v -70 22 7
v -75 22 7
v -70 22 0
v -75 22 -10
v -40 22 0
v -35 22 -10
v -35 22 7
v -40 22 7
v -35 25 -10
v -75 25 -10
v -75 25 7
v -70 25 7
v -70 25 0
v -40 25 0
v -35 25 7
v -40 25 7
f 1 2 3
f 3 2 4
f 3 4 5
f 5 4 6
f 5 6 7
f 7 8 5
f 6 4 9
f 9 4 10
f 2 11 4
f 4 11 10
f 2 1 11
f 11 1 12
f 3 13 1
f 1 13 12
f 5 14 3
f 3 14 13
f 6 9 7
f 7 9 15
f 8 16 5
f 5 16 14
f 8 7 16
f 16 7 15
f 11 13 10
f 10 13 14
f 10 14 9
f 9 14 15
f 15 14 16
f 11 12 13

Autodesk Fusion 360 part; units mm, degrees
sketch "Sketch1" plane through (0, 0, 0) normal (0, 0, 1) x (1, 0, 0)
  line L0 (-75, 25) -> (-35, 25)
  line L1 (-35, 25) -> (-35, 20)
  line L2 (-35, 20) -> (-75, 20)
  line L3 (-75, 20) -> (-75, 25)
  line L4 (-75, 20) -> (-70, 20)
  line L5 (-70, 20) -> (-70, 25)
  line L6 (-70, 25) -> (-75, 25)
  line L7 (-75, 25) -> (-75, 20)
  line L8 (-40, 20) -> (-35, 20)
  line L9 (-35, 20) -> (-35, 25)
  line L10 (-35, 25) -> (-40, 25)
  line L11 (-40, 25) -> (-40, 20)
  dimension "d1" = 40
  dimension "d2" = 5
extrude "Extrude1" add sketch "Sketch1" along normal blind 7 contours L0 L2 L3 L4 L5 L6 L7 | L0 L1 L2 L8 L9 L10 L11 makes body 1 at (-70, 21.6667, 2.3333) makes body 2 at (-38.3333, 25, 2.3333)
extrude "Extrude2" add sketch "Sketch1" against normal blind 8 bodies 1 2
extrude "Extrude3" add 1 faces at (-61.6667, 21.6667, -8) along direction (0, 0, -1) blind 2 on bodies 1 bodies 1
extrude "Extrude4" cut 1 faces at (-50, 20, -6.6667) along direction (0, 1, 0) blind 2 on bodies 1 bodies 1
sketch "Sketch2" plane through (0, 25, 0) normal (0, 1, 0) x (-1, 0, 0)
  line L0 (75, -10) -> (75, 7)
  line L1 (75, 7) -> (70, 7)
  line L2 (70, 7) -> (70, 0)
  line L3 (70, 0) -> (40, 0)
  line L4 (40, 0) -> (40, 7)
  line L5 (40, 7) -> (35, 7)
  line L6 (35, 7) -> (35, -10)
  line L7 (35, -10) -> (75, -10)
